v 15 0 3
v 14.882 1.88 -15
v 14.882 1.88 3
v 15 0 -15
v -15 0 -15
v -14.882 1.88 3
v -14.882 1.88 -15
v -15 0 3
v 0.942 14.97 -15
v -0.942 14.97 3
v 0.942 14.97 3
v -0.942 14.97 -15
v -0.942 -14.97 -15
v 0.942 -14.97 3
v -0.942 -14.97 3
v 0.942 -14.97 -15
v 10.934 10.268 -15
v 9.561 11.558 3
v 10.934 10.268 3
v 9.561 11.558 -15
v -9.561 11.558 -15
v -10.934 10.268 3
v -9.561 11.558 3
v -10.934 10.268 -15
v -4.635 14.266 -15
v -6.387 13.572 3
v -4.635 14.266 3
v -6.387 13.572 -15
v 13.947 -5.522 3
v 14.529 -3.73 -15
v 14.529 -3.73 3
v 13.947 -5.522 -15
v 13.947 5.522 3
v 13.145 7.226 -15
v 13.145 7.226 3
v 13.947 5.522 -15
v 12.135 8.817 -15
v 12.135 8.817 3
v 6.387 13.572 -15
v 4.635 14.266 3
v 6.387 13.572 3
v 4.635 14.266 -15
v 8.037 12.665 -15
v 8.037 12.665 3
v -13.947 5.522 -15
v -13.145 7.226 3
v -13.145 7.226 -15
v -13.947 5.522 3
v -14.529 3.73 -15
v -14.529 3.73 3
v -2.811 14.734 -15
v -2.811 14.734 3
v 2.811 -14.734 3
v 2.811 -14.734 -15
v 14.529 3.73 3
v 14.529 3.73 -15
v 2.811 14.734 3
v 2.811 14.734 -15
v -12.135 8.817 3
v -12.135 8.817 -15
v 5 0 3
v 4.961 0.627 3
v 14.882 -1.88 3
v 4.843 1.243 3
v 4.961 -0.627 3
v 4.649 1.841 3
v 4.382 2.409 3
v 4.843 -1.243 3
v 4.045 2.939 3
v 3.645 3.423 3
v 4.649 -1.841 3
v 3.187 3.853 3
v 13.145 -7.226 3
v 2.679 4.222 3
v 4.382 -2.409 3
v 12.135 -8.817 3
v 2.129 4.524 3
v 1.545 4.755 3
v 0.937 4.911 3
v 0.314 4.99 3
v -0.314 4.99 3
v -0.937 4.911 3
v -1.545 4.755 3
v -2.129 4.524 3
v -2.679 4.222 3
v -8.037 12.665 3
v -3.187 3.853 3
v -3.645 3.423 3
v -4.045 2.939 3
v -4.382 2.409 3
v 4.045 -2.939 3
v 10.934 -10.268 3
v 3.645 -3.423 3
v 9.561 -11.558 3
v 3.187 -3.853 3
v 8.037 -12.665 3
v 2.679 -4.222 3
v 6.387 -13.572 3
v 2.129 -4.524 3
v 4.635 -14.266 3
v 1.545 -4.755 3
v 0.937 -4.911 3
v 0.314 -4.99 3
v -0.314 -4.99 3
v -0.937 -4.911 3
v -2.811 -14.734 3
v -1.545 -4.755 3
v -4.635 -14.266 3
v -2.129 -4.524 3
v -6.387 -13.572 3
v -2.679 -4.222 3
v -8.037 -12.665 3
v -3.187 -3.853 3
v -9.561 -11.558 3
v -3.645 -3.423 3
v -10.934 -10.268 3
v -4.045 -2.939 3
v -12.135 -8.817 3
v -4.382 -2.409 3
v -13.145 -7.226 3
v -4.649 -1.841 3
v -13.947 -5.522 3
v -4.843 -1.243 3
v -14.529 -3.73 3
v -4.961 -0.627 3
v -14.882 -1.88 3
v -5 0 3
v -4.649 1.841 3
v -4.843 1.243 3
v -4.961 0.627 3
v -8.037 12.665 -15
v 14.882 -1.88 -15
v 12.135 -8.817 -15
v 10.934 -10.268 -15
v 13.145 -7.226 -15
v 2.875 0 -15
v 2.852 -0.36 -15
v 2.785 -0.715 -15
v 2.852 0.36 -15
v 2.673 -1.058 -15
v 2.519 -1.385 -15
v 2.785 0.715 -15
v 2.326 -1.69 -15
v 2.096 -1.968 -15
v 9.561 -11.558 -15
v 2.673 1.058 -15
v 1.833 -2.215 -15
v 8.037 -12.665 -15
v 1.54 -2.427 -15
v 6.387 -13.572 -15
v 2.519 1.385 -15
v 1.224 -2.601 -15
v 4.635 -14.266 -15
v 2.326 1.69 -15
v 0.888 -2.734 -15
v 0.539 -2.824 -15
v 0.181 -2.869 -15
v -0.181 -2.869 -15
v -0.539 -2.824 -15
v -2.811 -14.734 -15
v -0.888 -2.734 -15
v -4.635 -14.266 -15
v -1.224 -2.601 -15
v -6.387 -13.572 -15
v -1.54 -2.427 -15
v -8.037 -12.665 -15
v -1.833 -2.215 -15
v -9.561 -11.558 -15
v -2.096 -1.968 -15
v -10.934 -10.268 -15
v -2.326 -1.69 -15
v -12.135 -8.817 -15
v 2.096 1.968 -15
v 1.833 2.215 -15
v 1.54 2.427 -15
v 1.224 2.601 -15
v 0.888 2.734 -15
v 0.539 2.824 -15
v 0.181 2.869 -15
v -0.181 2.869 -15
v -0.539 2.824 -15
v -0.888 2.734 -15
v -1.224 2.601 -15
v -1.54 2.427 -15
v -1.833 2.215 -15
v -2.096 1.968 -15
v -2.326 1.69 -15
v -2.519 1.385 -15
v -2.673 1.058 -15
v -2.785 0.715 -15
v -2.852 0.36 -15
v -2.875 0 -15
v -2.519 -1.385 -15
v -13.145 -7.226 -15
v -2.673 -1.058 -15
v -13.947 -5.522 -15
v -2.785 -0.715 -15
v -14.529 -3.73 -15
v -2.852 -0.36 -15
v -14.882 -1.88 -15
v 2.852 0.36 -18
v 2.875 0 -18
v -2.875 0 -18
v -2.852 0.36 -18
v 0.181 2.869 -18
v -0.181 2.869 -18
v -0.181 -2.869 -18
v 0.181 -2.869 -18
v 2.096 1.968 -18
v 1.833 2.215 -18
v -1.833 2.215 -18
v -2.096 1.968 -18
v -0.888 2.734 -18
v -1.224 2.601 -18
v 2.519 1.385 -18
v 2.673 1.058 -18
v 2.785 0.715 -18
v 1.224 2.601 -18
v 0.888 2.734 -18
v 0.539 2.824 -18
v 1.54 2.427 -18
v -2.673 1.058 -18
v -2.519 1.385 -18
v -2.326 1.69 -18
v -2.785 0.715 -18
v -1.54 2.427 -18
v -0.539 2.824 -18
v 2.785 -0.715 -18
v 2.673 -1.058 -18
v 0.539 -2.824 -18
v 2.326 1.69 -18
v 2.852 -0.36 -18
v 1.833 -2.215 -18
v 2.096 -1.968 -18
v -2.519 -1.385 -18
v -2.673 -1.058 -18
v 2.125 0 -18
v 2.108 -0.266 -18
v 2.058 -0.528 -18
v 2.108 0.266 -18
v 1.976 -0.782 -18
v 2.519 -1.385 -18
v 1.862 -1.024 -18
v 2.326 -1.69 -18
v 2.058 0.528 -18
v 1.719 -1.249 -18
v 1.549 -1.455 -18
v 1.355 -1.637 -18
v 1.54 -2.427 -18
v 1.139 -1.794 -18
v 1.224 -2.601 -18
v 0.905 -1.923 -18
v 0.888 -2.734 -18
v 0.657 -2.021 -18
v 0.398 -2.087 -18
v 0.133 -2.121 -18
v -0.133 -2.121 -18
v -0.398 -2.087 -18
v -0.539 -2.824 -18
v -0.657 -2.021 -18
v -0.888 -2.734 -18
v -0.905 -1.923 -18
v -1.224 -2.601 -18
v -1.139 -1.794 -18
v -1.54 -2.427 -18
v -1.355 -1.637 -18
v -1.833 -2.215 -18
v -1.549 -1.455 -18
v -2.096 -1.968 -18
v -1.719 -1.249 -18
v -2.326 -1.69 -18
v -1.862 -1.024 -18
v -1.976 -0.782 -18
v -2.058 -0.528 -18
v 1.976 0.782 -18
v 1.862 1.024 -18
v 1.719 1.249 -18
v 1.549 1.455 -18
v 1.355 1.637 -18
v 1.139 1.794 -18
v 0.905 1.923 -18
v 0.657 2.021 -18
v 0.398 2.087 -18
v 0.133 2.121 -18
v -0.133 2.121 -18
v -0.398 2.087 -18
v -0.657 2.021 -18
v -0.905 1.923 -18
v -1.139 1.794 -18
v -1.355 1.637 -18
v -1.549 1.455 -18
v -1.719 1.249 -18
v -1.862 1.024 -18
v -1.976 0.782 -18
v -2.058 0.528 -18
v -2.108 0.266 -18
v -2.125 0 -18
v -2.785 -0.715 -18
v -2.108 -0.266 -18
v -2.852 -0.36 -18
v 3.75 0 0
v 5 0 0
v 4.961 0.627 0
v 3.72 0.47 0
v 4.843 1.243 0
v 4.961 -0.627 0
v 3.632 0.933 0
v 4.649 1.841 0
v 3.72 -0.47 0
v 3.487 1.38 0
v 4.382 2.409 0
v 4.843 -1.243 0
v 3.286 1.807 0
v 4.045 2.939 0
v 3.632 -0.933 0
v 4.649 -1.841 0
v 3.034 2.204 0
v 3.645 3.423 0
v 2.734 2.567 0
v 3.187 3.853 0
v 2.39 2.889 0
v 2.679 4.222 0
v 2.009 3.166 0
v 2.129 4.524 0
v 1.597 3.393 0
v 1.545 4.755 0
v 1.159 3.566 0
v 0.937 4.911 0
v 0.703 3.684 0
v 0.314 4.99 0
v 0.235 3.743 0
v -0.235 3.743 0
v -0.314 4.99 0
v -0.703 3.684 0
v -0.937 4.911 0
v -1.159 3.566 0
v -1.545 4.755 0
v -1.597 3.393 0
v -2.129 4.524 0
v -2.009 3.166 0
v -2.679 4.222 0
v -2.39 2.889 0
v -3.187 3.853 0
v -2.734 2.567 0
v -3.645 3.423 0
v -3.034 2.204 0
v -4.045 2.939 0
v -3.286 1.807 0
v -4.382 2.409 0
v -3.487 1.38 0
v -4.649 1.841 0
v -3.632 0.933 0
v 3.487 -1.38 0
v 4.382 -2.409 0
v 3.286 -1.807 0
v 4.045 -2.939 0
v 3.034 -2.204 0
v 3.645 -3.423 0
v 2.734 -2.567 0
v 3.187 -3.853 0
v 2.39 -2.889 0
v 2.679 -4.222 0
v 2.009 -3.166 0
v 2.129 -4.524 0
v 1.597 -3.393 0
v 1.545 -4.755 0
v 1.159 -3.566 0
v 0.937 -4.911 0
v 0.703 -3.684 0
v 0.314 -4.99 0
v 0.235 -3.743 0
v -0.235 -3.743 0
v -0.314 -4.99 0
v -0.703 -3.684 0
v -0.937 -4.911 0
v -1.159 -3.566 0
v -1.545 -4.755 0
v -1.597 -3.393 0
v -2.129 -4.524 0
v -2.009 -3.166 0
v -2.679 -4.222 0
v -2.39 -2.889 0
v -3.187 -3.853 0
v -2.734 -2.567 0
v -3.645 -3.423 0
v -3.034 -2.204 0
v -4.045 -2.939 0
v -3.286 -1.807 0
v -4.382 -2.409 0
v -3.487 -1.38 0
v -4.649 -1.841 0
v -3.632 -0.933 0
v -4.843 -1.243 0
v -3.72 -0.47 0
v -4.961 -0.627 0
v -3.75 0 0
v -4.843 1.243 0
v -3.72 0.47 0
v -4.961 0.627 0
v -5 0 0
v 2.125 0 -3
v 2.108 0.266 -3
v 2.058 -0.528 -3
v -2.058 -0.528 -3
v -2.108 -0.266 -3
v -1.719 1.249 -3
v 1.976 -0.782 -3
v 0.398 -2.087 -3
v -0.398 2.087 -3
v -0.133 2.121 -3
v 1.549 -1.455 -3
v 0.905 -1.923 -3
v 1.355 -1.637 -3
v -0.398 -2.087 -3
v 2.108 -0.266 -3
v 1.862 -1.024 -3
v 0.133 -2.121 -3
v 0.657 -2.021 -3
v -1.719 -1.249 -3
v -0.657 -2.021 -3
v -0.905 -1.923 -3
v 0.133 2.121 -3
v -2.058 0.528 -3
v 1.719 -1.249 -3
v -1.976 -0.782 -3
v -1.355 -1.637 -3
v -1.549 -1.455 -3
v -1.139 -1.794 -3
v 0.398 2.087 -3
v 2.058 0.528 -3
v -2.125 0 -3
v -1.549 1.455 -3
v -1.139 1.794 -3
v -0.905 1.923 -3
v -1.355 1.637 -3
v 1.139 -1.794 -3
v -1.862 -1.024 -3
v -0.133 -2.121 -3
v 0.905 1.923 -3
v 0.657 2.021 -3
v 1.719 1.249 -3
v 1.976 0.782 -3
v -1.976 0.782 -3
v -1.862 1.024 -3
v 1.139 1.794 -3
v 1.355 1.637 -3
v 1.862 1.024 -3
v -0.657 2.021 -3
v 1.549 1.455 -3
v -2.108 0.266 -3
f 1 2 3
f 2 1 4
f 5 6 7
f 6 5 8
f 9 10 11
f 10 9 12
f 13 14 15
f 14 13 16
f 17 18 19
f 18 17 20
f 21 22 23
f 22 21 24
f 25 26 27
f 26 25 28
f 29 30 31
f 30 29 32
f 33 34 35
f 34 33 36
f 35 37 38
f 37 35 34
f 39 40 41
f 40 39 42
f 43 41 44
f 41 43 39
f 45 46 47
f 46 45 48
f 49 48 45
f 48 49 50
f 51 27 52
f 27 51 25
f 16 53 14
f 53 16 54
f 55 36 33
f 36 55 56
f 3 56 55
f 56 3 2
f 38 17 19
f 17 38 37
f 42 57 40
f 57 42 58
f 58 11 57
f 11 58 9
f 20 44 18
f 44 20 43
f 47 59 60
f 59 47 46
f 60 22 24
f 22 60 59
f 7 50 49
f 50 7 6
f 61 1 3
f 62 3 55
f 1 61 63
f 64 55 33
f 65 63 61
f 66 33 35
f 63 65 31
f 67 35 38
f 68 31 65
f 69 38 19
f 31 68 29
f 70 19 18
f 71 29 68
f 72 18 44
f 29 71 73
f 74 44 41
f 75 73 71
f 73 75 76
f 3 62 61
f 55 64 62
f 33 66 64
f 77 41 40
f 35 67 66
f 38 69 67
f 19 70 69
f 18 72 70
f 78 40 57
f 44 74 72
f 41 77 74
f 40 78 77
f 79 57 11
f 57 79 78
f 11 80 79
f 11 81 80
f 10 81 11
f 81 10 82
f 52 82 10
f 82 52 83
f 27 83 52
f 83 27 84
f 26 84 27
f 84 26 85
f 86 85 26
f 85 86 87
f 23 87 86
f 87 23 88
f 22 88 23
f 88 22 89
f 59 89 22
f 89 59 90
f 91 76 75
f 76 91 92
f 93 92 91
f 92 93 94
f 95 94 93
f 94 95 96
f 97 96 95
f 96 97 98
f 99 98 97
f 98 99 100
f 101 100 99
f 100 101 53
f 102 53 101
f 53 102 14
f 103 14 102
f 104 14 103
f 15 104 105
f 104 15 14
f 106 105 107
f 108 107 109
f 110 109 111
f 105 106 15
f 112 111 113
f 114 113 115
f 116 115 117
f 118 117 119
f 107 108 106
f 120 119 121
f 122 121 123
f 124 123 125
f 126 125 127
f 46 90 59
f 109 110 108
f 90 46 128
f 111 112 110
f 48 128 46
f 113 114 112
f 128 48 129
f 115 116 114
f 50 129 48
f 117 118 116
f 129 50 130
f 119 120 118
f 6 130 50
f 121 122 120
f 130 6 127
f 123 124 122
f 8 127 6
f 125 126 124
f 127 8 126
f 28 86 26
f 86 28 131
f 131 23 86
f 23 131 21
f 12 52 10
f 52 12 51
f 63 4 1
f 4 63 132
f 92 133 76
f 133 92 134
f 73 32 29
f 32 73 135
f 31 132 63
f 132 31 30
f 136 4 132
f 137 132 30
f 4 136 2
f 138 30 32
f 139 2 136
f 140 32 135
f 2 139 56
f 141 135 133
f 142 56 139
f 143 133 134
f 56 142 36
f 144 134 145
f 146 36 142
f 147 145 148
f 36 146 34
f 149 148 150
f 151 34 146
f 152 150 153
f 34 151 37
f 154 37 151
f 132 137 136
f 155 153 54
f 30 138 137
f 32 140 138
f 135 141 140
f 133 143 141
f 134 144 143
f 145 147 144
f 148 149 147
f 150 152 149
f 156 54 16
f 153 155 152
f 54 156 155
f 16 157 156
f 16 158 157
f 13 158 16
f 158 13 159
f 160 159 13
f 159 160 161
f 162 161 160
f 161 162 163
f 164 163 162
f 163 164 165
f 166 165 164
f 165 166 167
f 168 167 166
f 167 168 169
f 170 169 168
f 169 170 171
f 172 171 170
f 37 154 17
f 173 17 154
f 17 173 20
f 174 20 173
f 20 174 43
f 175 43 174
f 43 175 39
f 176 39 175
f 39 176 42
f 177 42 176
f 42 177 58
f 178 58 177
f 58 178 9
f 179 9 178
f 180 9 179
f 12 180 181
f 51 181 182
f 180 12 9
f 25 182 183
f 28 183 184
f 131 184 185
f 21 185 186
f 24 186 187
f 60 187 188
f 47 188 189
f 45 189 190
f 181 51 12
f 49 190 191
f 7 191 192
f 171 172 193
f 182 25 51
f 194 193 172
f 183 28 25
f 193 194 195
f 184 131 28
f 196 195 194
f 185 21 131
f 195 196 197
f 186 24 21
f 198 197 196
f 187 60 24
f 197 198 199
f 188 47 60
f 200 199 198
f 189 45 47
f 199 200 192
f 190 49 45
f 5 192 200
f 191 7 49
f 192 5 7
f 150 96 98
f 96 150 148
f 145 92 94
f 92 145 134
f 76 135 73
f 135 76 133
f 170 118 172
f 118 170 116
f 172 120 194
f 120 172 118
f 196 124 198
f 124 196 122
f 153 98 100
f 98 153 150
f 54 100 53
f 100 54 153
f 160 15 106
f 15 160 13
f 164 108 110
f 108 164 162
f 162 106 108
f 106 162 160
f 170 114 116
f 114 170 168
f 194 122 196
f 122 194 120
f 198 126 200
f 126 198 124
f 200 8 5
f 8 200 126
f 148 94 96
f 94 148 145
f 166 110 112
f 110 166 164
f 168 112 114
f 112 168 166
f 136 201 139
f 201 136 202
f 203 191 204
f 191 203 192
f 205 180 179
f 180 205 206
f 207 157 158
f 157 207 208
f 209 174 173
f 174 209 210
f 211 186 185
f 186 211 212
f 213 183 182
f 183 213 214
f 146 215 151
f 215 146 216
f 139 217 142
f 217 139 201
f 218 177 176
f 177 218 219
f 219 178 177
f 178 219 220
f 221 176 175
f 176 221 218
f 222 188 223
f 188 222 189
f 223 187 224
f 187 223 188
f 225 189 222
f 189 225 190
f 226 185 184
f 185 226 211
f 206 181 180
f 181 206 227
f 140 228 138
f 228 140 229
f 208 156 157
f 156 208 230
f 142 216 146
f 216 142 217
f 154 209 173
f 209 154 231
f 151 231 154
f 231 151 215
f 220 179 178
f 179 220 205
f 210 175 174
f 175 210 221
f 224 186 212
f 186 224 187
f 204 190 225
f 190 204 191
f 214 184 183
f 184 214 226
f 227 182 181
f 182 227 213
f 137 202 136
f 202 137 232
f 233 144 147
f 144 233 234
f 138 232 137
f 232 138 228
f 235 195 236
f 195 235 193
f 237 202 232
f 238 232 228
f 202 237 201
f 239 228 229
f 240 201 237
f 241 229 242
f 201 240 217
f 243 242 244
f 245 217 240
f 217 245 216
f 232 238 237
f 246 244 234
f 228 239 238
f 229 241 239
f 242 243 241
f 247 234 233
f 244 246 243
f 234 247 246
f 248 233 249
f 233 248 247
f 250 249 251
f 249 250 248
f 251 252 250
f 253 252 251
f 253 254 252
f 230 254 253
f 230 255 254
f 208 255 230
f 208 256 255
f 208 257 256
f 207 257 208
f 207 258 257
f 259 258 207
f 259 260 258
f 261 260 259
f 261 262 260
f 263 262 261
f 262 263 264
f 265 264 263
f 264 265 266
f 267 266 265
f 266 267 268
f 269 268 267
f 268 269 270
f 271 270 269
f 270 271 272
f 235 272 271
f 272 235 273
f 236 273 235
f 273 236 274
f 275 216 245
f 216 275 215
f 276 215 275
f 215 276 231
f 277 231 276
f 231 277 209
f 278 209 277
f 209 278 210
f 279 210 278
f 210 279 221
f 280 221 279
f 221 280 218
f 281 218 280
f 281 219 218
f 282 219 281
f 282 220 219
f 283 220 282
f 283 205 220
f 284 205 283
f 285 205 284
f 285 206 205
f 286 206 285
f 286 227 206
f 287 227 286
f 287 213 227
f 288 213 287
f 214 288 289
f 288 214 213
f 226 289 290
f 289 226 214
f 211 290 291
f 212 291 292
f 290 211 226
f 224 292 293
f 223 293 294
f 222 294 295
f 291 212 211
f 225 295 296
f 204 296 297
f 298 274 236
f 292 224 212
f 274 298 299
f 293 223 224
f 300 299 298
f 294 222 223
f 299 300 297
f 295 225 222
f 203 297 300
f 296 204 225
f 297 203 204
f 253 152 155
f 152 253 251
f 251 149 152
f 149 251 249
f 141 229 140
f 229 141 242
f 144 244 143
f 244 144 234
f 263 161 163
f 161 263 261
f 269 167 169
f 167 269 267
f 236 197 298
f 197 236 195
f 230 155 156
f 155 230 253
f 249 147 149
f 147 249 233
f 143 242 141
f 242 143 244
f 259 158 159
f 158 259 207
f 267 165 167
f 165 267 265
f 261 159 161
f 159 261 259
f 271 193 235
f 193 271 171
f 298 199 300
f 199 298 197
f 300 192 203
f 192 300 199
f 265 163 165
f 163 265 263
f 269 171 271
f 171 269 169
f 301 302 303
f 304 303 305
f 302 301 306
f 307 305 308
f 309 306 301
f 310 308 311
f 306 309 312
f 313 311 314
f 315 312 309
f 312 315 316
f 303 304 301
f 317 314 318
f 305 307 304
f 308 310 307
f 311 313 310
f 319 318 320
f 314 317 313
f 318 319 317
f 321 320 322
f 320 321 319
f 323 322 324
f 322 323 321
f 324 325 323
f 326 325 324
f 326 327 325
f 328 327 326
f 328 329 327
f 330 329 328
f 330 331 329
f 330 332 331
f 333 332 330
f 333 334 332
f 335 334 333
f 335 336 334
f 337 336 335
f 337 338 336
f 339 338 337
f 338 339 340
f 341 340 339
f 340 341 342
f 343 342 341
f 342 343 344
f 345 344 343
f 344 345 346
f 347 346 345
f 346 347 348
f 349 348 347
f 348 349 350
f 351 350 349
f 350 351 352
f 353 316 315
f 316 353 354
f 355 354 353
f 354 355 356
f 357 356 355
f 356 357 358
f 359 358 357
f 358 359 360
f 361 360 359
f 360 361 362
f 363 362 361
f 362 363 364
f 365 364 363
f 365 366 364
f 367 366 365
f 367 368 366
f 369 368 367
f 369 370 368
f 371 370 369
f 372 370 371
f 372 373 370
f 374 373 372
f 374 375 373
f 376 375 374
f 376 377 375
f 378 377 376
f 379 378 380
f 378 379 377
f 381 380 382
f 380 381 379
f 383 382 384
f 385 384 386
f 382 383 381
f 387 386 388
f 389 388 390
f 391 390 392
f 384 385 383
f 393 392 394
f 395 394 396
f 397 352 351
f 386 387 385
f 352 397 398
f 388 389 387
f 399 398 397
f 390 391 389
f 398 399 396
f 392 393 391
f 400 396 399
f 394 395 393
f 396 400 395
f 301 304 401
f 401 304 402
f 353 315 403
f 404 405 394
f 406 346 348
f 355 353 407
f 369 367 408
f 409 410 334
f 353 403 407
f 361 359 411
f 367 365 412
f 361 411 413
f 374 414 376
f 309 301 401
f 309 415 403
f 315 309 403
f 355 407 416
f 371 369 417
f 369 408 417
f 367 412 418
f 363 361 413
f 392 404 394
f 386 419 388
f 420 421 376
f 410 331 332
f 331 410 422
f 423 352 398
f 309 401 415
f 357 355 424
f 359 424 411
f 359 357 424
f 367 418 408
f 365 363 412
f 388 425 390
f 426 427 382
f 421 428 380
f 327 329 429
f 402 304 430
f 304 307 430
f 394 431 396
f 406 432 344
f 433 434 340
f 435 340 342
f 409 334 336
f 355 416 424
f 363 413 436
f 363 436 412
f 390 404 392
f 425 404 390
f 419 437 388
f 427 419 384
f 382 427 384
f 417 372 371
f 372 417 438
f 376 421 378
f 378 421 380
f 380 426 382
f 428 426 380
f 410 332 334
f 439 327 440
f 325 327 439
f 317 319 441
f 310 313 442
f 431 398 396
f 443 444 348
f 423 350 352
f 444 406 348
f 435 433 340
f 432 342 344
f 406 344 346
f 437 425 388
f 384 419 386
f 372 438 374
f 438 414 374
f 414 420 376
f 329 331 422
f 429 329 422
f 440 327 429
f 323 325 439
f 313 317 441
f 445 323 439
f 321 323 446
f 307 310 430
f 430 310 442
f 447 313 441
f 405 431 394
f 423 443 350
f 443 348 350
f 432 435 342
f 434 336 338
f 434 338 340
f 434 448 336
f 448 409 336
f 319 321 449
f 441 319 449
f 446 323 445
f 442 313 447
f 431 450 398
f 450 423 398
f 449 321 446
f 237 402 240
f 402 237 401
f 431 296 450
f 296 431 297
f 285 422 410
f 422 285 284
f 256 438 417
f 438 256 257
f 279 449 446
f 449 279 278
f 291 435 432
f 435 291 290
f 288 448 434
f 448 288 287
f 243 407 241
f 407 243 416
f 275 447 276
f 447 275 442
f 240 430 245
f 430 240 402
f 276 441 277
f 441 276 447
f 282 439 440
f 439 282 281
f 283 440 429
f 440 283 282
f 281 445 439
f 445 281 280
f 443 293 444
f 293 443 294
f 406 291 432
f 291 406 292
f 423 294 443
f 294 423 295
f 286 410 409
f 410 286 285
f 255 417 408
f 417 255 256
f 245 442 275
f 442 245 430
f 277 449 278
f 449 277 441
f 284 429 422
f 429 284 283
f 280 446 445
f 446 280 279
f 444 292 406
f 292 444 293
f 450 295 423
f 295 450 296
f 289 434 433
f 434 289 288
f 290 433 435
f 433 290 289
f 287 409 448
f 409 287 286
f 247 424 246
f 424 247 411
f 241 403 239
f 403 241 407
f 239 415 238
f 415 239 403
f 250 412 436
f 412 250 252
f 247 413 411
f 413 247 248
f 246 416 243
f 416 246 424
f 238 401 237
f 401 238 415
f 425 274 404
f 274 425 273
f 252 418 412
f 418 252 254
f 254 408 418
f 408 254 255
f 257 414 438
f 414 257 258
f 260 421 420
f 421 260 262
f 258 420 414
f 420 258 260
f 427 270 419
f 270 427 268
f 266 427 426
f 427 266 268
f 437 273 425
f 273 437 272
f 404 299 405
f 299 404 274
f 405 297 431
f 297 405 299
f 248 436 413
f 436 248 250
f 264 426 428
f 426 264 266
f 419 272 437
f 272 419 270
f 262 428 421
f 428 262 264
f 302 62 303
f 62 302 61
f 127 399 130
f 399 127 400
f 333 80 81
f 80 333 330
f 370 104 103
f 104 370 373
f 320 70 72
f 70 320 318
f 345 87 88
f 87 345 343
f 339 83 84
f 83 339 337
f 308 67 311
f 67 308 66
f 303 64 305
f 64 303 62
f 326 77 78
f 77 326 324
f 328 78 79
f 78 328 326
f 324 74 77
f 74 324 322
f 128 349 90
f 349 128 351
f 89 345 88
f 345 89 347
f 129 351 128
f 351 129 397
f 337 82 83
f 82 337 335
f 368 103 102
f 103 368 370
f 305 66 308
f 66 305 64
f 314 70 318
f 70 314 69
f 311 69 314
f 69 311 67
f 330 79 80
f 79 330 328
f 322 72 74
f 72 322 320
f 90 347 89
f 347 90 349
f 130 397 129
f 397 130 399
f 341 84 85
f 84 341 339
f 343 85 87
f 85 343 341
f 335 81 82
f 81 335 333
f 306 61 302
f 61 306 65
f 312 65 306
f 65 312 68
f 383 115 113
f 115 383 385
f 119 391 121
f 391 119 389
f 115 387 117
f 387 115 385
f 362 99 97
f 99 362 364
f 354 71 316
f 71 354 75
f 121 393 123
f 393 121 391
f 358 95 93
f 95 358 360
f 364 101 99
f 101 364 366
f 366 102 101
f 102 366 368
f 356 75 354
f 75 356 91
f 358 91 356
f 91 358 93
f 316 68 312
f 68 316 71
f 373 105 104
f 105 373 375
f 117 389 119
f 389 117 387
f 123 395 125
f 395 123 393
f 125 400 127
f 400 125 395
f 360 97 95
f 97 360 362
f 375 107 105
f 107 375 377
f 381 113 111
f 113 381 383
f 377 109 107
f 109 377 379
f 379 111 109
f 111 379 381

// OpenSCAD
$fn = 50;


difference() {
	union() {
		translate(v = [0, 0, -15.0000000000]) {
			cylinder(h = 18, r = 15.0000000000);
		}
		#translate(v = [0, 0, -18.0000000000]) {
			cylinder(h = 18, r = 2.8750000000);
		}
	}
	union() {
		translate(v = [0, 0, 0]) {
			rotate(a = [0, 0, 0]) {
				difference() {
					union() {
						translate(v = [0, 0, -18.0000000000]) {
							cylinder(h = 18, r = 2.0000000000);
						}
						translate(v = [0, 0, -3]) {
							cylinder(h = 3, r1 = 2.1250000000, r2 = 3.7500000000);
						}
						translate(v = [0, 0, -18.0000000000]) {
							cylinder(h = 18, r = 2.1250000000);
						}
						translate(v = [0, 0, -18.0000000000]) {
							cylinder(h = 18, r = 2.0000000000);
						}
					}
					union();
				}
			}
		}
		#cylinder(h = 3, r = 5.0000000000);
	}
}
